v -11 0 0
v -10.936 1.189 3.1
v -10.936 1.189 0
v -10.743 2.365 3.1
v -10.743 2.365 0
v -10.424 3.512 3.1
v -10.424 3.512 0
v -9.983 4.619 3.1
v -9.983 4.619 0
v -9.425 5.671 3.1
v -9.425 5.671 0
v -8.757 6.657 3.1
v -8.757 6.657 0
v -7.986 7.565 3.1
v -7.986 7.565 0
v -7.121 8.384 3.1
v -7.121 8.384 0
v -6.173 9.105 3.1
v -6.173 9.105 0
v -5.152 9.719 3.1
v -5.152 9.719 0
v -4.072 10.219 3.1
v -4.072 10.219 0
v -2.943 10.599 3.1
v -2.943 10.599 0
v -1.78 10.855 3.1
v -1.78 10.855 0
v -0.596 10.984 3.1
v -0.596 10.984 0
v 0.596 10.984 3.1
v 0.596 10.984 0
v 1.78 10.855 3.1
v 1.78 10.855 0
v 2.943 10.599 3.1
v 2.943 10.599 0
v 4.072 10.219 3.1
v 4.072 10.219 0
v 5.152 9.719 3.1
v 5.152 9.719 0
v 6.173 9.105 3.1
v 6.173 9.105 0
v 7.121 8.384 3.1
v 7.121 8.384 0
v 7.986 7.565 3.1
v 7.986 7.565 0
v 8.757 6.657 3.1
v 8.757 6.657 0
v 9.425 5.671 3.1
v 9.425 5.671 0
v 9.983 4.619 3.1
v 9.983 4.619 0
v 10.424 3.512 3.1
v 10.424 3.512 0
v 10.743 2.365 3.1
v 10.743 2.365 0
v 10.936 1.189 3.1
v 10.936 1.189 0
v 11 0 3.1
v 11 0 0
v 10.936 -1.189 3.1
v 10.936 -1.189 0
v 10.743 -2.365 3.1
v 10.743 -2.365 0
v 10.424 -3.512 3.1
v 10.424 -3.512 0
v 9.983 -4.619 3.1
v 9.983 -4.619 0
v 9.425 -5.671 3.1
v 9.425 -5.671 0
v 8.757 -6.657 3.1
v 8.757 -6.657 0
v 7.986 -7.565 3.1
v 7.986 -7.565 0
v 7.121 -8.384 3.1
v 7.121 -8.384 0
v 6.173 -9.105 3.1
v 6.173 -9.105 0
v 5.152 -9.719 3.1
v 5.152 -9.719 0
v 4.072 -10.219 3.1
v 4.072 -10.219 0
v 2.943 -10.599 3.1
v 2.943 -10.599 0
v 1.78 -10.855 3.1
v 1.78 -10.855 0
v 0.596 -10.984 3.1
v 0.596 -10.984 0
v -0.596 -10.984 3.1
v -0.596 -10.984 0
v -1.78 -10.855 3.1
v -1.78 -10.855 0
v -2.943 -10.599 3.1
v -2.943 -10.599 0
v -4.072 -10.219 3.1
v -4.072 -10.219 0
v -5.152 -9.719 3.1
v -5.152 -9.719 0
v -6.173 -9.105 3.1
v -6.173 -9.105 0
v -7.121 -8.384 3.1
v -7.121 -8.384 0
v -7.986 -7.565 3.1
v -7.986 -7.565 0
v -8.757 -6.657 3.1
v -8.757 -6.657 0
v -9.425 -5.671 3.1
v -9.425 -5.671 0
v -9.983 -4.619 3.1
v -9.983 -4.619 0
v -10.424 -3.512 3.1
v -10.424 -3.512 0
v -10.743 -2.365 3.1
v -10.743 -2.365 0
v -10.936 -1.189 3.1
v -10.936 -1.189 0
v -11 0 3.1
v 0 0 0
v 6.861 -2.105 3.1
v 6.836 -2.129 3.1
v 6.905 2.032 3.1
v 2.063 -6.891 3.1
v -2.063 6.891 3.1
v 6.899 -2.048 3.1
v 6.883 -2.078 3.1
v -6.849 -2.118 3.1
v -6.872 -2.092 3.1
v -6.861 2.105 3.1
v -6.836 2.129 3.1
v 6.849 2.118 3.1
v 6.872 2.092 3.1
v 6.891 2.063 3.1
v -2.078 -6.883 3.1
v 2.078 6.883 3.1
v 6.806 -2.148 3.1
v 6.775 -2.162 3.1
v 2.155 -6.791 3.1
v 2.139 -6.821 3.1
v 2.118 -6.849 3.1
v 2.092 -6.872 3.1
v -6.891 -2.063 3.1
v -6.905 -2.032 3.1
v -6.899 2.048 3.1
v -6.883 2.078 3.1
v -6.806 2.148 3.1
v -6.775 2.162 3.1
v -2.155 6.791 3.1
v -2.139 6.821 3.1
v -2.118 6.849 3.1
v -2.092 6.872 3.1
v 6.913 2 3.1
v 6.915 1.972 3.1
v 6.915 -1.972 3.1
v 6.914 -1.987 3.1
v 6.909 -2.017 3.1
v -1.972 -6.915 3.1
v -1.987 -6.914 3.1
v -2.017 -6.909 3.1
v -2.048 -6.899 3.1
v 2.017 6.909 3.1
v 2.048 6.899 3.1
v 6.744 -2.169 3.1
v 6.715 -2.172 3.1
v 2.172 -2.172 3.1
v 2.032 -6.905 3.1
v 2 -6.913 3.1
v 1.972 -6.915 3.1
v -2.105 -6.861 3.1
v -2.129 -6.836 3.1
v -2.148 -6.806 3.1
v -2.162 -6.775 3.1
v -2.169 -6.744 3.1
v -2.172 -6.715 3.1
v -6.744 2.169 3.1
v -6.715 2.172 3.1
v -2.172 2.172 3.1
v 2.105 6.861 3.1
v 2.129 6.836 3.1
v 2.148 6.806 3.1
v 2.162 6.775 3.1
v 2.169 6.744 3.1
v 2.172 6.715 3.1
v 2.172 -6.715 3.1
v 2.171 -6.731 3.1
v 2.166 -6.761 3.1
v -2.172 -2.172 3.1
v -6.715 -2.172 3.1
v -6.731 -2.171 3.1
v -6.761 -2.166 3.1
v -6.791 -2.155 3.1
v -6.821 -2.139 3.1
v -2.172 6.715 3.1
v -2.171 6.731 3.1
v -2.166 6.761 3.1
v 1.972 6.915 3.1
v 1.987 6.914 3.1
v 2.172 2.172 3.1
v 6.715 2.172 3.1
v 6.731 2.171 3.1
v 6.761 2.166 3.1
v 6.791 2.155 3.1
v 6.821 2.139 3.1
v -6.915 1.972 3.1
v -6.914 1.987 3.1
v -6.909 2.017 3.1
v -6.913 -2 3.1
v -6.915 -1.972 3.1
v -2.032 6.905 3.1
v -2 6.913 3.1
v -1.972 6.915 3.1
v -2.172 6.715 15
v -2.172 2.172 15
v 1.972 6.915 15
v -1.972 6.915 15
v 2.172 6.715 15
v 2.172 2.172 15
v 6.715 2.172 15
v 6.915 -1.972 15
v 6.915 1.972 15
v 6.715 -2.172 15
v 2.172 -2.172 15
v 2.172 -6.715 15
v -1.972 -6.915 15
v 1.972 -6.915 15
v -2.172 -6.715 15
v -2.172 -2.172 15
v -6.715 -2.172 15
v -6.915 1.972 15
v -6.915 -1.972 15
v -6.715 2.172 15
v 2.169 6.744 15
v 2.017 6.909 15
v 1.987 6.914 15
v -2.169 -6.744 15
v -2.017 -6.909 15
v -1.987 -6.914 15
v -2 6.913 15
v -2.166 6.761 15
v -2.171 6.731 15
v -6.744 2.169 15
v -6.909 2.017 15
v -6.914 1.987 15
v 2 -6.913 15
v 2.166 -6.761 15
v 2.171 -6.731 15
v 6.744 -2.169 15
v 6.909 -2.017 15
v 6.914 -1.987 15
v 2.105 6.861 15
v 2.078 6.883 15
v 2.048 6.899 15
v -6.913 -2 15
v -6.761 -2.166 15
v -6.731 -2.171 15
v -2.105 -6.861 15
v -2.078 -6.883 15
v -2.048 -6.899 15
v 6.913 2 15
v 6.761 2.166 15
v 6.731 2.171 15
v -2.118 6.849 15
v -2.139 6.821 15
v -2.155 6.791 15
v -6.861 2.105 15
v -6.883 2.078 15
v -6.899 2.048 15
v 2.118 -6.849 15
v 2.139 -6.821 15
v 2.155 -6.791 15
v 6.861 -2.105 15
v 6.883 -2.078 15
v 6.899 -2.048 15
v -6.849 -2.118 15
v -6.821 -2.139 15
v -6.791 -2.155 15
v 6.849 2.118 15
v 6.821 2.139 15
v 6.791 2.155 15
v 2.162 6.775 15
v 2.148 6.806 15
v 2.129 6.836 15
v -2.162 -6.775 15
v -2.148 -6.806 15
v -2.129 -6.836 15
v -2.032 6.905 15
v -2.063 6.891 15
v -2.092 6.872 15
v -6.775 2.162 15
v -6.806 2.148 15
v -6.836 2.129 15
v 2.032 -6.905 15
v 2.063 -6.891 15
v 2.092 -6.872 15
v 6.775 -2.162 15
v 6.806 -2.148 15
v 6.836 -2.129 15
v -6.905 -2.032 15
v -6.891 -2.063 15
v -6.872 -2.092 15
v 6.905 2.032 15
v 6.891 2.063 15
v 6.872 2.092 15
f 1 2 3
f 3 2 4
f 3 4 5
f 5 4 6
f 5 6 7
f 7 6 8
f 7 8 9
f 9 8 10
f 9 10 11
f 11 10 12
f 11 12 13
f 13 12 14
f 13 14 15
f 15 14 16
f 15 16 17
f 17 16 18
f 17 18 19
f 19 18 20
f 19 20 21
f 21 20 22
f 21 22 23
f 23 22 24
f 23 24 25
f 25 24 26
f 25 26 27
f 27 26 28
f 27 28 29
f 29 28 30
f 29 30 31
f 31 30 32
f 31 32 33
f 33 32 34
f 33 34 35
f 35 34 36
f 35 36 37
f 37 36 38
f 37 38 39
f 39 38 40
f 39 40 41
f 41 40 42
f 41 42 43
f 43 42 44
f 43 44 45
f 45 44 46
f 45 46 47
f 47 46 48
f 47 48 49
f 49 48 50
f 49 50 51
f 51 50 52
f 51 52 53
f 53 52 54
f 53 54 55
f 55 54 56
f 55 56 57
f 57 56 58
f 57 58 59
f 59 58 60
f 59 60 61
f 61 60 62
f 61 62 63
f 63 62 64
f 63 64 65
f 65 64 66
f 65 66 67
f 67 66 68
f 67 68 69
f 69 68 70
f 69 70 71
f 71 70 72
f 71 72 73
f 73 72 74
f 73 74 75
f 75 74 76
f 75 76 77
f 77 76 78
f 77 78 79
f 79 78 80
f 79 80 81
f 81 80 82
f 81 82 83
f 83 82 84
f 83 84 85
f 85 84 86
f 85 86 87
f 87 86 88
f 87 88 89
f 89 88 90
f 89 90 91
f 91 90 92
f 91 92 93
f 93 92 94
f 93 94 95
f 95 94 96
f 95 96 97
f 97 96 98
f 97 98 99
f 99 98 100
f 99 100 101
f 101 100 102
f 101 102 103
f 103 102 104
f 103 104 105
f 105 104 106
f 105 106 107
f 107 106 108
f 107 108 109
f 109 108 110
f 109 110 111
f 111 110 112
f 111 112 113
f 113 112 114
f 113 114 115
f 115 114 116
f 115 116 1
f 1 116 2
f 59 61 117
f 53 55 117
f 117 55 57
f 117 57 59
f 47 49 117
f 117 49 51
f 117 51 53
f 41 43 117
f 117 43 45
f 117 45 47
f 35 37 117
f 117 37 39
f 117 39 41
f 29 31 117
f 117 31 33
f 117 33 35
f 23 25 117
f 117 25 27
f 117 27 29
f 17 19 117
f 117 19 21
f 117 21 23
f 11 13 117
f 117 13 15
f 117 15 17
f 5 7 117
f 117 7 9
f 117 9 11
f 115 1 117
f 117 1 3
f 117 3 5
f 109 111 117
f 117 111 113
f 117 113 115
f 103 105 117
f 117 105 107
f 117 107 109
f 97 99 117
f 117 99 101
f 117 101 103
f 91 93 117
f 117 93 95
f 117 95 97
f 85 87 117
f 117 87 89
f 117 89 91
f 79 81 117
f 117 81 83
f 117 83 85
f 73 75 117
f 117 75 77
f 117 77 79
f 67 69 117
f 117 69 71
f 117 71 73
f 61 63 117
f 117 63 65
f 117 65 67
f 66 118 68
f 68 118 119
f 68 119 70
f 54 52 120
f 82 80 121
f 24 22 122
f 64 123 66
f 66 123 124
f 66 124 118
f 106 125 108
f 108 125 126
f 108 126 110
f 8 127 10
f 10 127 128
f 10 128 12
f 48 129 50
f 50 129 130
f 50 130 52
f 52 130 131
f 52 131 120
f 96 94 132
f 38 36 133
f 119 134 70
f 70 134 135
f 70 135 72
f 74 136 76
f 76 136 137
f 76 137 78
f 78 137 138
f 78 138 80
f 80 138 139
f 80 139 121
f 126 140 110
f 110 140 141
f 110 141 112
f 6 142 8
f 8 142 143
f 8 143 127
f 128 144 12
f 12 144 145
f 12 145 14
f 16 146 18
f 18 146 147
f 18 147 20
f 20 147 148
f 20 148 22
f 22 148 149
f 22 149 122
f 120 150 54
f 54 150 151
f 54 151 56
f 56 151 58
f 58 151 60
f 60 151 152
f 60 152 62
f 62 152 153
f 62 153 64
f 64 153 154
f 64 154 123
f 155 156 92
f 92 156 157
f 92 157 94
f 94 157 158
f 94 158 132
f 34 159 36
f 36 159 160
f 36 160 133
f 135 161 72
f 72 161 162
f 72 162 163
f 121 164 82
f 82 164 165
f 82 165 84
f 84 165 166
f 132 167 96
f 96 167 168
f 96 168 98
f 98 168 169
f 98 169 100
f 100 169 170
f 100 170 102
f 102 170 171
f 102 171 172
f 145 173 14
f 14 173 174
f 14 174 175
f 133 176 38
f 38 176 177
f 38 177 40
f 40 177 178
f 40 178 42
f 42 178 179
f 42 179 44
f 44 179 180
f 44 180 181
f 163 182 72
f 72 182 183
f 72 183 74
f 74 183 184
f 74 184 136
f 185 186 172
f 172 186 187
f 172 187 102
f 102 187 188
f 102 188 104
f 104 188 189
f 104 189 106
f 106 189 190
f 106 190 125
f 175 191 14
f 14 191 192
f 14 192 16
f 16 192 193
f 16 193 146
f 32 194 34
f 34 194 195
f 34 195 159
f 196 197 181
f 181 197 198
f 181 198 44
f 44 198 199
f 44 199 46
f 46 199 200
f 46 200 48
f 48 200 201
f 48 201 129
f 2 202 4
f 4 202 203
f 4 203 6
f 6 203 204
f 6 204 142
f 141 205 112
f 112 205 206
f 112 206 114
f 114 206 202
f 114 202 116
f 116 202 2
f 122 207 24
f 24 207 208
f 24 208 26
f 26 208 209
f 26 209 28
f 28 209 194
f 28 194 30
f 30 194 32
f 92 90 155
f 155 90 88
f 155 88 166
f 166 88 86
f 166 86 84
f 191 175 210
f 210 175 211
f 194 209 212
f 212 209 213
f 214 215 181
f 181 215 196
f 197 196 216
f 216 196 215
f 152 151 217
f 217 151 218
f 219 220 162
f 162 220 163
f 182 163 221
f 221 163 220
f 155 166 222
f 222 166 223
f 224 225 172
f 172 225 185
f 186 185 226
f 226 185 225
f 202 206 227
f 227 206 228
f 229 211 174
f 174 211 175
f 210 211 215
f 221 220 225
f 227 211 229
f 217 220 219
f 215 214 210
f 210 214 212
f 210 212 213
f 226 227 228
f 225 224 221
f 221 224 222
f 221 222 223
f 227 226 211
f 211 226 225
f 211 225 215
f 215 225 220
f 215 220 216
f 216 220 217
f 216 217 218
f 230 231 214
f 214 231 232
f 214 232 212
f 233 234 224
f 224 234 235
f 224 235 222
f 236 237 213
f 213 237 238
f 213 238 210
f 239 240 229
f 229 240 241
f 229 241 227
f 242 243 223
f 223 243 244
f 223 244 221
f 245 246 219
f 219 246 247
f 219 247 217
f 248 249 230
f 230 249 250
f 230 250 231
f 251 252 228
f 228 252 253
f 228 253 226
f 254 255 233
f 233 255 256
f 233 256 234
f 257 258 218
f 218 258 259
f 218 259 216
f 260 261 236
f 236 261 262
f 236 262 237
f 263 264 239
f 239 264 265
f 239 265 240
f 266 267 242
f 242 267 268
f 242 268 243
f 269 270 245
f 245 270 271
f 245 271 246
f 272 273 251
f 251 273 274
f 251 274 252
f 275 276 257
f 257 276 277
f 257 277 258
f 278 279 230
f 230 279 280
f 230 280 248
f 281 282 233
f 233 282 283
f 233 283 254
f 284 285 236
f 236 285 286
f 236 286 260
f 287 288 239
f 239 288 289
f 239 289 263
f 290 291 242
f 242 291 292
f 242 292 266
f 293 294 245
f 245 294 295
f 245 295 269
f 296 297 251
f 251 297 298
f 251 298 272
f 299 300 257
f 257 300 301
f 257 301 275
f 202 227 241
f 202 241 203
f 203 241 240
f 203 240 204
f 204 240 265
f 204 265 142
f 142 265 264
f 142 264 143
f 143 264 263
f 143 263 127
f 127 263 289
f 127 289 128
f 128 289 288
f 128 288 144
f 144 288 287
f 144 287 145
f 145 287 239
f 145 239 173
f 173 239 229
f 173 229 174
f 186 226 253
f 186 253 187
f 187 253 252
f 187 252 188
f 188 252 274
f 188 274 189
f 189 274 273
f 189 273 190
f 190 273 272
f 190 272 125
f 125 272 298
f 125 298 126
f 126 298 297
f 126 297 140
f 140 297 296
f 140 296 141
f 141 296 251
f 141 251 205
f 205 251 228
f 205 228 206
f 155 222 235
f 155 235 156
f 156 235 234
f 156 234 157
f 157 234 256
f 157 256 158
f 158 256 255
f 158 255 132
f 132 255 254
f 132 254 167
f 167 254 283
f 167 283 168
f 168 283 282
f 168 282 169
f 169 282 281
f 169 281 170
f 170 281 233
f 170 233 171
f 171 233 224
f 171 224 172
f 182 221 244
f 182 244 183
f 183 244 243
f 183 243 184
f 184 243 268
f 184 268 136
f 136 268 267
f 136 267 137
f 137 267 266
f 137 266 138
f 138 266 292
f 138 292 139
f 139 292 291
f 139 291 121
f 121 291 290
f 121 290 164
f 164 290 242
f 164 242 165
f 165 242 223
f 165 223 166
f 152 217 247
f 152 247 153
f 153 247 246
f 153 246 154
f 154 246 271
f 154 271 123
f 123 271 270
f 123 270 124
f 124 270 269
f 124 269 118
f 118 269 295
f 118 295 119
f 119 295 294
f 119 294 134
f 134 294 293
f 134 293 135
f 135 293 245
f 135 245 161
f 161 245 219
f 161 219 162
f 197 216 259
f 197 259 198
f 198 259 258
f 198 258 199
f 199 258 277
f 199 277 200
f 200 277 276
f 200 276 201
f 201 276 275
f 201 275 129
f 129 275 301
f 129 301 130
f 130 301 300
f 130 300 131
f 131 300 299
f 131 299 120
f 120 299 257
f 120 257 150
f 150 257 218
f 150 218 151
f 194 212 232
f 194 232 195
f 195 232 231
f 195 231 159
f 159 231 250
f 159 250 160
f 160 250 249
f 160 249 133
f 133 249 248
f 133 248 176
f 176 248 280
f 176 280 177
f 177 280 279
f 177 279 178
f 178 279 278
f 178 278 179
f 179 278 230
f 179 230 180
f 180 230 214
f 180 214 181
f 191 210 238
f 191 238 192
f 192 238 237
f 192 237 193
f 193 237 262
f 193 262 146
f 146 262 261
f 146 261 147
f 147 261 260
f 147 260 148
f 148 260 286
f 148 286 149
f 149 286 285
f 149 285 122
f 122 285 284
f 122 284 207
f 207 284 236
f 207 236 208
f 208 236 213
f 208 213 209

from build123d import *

# Parameters (mm, degrees)
SKETCH1_R           = 11
BOSS_EXTRUDE1_DEPTH = 15
CUT_EXTRUDE1_START  = -11.9
SKETCH2_R           = 11
CUT_EXTRUDE1_DEPTH  = 11.9
FILLET1_SIZE        = 0.2


with BuildPart() as part:
    # Sketch1 → Boss-Extrude1 (new body)
    with BuildSketch(Plane.XY):
        Circle(SKETCH1_R)
    extrude(amount=BOSS_EXTRUDE1_DEPTH)

    # Sketch2 → Cut-Extrude1 (cut)
    with BuildSketch(Plane.XY.offset(15).offset(CUT_EXTRUDE1_START)):
        Circle(SKETCH2_R)
        Polygon((-2.171708245, 2.171708245), (-6.915124735, 2.171708245), (-6.915124735, -2.171708245), (-2.171708245, -2.171708245), (-2.171708245, -6.915124735), (2.171708245, -6.915124735), (2.171708245, -2.171708245), (6.915124735, -2.171708245), (6.915124735, 2.171708245), (2.171708245, 2.171708245), (2.171708245, 6.915124735), (-2.171708245, 6.915124735), align=None, mode=Mode.SUBTRACT)
    extrude(amount=CUT_EXTRUDE1_DEPTH, mode=Mode.SUBTRACT)

    # Fillet1
    # a fillet whose section is not a circle: 0.2 mm, written as the material it takes off along each edge
    with BuildSketch(Plane(origin=(-6.915124735, 2.171708245, 3.1), x_dir=(0, -1, 0), z_dir=(0, 0, 1)), Plane(origin=(-6.915124735, -2.171708245, 3.1), x_dir=(1, 0, 0), z_dir=(0, 0, 1)), Plane(origin=(-2.171708245, -6.915124735, 3.1), x_dir=(1, 0, 0), z_dir=(0, 0, 1)), Plane(origin=(2.171708245, -6.915124735, 3.1), x_dir=(0, 1, 0), z_dir=(0, 0, 1)), Plane(origin=(6.915124735, -2.171708245, 3.1), x_dir=(0, 1, 0), z_dir=(0, 0, 1)), Plane(origin=(6.915124735, 2.171708245, 3.1), x_dir=(-1, 0, 0), z_dir=(0, 0, 1)), Plane(origin=(2.171708245, 6.915124735, 3.1), x_dir=(-1, 0, 0), z_dir=(0, 0, 1)), Plane(origin=(-2.171708245, 6.915124735, 3.1), x_dir=(0, -1, 0), z_dir=(0, 0, 1))) as fillet1_piece_1:
        with BuildLine():
            Bezier((FILLET1_SIZE, 0), (0, 0), (0, FILLET1_SIZE), weights=[1, 0.666666667, 1])
            Line((0, FILLET1_SIZE), (0, 0))
            Line((0, 0), (FILLET1_SIZE, 0))
        make_face()
    extrude(amount=12.4, mode=Mode.SUBTRACT)


solid = part.part
